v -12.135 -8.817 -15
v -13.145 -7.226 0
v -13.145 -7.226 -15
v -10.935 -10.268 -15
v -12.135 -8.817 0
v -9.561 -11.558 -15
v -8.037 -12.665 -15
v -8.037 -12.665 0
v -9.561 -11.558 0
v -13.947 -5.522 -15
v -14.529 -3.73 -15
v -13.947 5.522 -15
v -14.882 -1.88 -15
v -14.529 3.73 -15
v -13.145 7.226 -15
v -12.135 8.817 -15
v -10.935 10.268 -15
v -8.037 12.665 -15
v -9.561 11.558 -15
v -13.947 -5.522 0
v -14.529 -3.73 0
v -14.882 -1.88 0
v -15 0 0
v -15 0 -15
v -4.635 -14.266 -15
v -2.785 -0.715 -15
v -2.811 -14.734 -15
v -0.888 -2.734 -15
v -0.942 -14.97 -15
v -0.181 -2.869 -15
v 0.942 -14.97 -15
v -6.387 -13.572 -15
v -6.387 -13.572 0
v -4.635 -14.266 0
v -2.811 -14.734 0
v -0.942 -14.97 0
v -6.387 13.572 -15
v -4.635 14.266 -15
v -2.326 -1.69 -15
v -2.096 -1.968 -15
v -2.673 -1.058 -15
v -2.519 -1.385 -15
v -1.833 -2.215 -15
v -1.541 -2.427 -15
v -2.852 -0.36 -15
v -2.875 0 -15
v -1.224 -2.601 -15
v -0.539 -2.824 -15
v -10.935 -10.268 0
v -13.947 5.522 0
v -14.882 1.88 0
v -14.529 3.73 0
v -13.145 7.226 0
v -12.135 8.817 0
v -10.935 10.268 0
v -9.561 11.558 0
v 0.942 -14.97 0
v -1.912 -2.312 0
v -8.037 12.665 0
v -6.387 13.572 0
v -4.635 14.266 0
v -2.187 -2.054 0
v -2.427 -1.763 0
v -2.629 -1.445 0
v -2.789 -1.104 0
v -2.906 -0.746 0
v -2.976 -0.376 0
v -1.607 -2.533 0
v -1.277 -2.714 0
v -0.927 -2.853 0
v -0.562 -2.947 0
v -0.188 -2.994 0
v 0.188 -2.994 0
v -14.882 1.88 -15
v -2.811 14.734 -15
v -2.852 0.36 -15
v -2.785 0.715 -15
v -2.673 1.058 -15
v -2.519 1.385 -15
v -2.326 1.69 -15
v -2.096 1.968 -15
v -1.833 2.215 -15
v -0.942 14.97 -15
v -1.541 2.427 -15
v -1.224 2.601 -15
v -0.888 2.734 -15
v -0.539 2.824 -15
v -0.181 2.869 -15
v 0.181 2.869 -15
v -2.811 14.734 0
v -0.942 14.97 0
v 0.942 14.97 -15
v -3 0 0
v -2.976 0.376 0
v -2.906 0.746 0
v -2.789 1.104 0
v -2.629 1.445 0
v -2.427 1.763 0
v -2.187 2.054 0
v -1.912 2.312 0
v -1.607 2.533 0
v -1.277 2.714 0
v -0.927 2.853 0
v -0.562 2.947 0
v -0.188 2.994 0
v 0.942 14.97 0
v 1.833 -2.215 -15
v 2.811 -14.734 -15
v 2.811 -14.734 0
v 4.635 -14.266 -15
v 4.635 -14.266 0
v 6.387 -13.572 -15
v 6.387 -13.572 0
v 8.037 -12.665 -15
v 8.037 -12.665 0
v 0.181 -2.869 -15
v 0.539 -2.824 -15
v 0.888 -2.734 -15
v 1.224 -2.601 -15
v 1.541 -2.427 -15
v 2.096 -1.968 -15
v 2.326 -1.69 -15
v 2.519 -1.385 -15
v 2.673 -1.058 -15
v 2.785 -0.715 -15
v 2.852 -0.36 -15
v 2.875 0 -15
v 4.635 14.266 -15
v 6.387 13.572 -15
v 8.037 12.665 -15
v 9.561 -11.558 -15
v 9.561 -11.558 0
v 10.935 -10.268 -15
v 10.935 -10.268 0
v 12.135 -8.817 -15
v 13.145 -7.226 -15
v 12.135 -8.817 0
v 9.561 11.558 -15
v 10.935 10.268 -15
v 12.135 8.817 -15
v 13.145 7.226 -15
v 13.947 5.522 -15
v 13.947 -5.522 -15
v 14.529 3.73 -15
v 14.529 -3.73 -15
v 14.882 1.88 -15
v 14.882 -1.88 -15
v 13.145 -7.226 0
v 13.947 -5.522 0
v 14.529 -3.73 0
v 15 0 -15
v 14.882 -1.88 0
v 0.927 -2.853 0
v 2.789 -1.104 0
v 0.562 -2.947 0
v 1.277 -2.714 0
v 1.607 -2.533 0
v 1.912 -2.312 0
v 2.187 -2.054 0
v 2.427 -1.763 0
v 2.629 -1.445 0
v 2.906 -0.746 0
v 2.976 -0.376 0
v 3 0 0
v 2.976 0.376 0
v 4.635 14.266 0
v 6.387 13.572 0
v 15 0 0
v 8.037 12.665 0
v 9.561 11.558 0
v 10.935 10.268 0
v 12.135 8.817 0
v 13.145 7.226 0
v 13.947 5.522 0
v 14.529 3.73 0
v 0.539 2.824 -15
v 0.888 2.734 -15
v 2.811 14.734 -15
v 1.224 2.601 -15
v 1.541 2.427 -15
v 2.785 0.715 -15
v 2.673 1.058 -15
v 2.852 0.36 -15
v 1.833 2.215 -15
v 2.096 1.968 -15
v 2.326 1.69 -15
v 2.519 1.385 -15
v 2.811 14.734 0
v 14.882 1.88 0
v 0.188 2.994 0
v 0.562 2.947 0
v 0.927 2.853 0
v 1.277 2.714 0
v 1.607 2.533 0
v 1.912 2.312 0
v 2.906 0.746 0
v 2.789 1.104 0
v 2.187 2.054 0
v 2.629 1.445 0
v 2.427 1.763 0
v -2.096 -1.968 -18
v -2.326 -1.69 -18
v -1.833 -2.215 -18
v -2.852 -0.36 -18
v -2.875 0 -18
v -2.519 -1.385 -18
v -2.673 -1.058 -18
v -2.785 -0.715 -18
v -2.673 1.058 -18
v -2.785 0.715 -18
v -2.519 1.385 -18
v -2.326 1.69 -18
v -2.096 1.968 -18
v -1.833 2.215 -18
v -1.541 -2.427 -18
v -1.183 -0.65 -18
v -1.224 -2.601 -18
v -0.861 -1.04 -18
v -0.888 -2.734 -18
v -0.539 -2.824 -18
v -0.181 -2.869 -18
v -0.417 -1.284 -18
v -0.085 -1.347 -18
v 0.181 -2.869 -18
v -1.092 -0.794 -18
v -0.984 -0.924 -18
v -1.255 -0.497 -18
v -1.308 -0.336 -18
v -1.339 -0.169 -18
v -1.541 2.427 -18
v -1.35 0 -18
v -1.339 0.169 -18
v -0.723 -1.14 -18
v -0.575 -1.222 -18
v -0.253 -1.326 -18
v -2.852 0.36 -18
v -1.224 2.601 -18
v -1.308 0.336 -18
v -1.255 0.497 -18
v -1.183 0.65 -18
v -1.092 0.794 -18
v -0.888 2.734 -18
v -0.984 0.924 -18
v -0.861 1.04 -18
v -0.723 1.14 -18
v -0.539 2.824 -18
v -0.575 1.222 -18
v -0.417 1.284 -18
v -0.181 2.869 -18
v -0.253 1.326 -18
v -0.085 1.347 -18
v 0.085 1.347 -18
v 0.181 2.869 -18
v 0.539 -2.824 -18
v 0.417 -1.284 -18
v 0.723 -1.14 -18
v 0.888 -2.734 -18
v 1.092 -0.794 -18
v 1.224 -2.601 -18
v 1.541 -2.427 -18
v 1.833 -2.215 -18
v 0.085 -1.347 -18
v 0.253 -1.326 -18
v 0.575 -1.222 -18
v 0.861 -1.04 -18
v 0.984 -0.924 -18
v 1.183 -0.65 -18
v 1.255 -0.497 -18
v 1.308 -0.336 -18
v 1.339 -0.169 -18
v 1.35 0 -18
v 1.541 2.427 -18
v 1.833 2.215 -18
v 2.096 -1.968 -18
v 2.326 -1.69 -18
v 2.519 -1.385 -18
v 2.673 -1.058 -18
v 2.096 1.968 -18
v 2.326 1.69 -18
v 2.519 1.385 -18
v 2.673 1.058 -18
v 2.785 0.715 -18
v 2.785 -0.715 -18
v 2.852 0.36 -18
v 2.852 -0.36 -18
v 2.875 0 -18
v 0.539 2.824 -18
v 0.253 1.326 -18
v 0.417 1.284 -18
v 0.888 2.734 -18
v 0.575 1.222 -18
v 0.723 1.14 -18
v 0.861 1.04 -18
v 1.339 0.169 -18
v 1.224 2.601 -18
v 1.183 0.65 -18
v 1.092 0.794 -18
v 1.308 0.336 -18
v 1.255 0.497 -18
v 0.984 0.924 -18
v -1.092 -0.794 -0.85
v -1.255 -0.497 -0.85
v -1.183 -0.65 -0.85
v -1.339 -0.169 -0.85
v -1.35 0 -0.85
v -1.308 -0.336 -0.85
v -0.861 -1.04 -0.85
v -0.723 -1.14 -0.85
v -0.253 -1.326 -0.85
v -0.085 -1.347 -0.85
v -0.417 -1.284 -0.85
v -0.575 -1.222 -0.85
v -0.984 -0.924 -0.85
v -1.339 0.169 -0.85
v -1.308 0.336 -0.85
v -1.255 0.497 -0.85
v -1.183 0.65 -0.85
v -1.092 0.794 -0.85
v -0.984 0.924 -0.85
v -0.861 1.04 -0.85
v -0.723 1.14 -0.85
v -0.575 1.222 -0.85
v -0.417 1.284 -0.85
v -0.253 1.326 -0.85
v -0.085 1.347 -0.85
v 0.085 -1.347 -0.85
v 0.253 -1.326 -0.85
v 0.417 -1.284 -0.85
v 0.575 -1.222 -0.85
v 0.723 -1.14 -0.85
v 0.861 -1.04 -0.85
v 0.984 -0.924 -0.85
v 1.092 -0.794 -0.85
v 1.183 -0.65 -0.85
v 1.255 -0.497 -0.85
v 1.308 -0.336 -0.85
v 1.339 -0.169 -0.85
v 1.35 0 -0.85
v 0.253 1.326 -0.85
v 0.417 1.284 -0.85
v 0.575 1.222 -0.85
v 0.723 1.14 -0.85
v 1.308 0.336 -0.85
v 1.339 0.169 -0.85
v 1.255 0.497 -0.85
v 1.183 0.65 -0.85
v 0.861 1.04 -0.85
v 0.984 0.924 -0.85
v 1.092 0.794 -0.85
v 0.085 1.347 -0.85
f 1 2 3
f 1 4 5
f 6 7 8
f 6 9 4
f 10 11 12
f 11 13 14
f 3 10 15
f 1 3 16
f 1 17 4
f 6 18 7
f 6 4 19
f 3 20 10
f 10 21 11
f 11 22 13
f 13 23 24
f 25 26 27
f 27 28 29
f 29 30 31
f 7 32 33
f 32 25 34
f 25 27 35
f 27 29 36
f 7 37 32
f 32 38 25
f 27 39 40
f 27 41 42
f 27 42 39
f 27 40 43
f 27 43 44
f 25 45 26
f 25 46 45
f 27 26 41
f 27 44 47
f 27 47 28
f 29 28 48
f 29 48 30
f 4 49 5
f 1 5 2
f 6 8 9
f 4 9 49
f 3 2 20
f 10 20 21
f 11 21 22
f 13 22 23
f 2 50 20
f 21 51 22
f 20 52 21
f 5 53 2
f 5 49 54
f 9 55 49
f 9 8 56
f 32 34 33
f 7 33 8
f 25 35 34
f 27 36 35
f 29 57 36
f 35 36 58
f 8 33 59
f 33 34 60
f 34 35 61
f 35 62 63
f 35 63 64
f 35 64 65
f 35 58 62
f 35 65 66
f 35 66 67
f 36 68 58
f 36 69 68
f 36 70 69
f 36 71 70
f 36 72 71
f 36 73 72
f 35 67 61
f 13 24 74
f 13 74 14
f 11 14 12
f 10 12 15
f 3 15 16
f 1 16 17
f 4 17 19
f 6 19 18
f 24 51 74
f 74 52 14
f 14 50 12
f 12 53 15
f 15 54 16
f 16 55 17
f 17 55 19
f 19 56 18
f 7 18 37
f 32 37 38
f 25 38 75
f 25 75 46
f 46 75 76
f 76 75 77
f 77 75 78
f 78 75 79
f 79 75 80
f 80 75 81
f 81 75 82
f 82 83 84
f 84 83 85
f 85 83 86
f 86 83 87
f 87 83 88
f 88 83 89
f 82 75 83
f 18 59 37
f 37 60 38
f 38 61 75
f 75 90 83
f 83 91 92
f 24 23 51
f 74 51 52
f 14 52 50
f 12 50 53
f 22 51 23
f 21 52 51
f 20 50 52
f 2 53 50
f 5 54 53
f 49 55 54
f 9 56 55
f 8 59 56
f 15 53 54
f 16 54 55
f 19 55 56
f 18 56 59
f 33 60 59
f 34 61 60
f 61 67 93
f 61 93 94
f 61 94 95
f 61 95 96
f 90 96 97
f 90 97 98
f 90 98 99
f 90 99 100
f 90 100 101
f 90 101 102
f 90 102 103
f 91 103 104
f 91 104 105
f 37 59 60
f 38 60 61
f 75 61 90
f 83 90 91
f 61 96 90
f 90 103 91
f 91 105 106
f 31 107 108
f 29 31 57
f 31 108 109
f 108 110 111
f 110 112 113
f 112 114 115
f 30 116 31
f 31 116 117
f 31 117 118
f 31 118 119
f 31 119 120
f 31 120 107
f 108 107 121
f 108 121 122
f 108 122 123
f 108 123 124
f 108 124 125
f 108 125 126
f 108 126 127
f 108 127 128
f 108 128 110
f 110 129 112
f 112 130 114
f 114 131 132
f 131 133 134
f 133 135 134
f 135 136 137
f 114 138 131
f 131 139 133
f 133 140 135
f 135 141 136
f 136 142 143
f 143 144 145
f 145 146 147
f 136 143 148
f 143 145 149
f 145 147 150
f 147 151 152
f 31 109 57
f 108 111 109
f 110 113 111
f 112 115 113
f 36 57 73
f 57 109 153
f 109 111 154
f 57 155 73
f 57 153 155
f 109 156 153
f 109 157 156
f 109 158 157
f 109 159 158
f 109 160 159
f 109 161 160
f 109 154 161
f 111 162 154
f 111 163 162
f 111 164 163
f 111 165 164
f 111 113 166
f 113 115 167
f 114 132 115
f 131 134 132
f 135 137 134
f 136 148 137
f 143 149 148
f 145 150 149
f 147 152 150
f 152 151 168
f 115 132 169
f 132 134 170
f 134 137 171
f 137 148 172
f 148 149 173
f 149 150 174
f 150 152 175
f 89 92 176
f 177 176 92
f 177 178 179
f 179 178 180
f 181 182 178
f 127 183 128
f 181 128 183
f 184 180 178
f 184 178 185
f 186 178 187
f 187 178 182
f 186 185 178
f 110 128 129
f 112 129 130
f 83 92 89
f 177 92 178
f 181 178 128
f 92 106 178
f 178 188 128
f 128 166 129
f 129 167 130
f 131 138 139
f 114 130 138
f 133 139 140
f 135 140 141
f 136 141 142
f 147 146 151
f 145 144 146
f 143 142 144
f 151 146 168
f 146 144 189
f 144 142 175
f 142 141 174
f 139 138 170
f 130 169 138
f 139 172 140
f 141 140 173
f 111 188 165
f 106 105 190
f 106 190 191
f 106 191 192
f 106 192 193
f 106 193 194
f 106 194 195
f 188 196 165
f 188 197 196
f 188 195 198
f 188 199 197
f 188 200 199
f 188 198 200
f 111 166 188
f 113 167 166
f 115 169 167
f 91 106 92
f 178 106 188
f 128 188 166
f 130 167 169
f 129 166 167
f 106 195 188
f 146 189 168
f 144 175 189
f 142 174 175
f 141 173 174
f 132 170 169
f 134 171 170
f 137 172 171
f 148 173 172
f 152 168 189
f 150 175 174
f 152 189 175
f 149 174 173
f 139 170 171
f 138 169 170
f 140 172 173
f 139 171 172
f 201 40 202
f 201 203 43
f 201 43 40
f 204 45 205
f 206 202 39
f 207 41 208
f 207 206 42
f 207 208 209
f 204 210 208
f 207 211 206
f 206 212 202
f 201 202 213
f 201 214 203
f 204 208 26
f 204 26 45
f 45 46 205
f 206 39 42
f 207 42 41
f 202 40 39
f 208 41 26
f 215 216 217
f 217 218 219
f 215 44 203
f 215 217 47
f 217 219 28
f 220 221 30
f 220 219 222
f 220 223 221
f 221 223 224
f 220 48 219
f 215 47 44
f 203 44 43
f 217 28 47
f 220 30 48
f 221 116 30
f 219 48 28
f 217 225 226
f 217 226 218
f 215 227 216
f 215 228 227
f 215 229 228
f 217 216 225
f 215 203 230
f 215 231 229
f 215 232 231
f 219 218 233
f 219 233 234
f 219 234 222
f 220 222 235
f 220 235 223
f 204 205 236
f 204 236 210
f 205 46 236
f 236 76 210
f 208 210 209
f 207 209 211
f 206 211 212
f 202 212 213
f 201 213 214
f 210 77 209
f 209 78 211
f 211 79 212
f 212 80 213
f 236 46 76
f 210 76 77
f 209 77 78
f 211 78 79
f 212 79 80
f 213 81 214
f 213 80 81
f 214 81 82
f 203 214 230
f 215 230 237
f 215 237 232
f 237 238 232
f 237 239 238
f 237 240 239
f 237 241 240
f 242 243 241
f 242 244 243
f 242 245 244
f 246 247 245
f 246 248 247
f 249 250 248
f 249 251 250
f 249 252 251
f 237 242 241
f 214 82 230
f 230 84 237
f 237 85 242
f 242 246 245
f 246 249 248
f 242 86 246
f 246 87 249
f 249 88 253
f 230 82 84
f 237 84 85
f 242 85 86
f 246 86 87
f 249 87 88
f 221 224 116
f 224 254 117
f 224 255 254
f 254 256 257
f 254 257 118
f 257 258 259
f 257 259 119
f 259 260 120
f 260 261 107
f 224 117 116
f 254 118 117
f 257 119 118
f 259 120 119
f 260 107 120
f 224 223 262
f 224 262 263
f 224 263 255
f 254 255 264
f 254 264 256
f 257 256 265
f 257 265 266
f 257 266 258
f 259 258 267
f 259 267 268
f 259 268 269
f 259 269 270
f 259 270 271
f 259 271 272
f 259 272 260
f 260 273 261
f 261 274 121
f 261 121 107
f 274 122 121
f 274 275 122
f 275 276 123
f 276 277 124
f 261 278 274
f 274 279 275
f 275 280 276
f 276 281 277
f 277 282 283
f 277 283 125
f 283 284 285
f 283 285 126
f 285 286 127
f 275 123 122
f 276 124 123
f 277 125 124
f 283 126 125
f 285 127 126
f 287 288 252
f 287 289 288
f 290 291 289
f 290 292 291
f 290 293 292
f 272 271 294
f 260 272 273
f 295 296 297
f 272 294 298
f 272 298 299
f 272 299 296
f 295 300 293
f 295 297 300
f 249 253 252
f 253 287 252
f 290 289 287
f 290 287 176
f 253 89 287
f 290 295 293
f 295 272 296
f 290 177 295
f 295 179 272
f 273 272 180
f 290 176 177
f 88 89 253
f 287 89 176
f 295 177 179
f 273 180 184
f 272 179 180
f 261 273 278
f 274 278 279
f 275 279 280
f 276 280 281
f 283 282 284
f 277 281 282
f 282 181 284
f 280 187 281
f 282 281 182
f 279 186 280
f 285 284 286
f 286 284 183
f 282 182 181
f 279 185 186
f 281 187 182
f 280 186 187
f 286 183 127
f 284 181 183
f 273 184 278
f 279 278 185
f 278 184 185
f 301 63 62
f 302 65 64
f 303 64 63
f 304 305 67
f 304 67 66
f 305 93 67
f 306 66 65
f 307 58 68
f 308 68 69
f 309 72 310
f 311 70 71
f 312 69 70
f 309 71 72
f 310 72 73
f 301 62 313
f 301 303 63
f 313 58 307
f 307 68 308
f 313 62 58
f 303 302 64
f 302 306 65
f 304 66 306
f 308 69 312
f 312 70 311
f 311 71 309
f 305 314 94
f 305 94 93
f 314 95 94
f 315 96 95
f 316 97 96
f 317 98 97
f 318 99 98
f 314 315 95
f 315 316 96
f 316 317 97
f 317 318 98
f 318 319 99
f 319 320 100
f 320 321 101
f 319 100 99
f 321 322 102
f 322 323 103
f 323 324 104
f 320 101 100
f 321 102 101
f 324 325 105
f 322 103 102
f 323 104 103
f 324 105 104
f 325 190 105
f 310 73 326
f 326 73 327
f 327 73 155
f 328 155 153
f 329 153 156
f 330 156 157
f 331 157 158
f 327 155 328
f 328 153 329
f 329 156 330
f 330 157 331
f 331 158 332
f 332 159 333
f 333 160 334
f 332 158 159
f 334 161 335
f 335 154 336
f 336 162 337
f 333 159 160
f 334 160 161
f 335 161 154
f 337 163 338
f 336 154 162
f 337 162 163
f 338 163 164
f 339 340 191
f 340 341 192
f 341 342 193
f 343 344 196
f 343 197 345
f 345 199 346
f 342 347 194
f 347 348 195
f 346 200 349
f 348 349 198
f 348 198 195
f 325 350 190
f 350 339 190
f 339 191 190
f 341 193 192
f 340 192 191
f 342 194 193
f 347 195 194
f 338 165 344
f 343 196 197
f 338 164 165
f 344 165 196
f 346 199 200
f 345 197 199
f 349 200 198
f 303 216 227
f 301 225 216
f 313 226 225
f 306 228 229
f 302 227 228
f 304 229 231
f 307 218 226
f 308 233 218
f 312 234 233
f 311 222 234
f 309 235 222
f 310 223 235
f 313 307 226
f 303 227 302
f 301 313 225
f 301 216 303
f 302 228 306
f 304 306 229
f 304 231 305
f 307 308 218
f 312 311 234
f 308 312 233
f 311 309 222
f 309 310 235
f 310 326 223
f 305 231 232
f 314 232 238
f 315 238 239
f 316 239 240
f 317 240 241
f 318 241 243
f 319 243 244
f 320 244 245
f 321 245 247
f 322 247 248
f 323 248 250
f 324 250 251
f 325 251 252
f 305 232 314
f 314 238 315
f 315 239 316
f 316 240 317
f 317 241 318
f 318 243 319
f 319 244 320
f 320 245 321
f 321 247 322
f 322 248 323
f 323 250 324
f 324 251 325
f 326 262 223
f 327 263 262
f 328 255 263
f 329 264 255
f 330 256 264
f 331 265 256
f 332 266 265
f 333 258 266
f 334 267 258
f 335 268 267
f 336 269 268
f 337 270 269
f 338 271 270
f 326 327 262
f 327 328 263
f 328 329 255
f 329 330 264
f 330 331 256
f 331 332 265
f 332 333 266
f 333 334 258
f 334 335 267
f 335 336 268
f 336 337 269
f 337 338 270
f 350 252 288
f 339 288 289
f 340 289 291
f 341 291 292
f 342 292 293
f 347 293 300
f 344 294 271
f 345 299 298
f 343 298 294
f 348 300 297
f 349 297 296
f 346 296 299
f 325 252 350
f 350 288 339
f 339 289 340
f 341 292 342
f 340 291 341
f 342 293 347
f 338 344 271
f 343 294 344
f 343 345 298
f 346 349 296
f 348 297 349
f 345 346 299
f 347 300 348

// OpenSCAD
$fn = 50;

difference() {
	union() {
		translate(v = [0, 0, -15.0]) {
			cylinder(h = 15, r = 15.0);
		}
		#translate(v = [0, 0, -18.0]) {
			cylinder(h = 18, r = 2.875);
		}
	}
	union() {
		translate(v = [0, 0, 0]) {
			rotate(a = [0, 0, 0]) {
				difference() {
					union() {
						translate(v = [0, 0, -18.0]) {
							cylinder(h = 18, r = 1.0);
						}
						translate(v = [0, 0, -0.85]) {
							cylinder(h = 0.85, r1 = 1.35, r2 = 3.0);
						}
						translate(v = [0, 0, -18.0]) {
							cylinder(h = 18, r = 1.35);
						}
						translate(v = [0, 0, -18.0]) {
							cylinder(h = 18, r = 1.0);
						}
					}
					union();
				}
			}
		}
	}
}
